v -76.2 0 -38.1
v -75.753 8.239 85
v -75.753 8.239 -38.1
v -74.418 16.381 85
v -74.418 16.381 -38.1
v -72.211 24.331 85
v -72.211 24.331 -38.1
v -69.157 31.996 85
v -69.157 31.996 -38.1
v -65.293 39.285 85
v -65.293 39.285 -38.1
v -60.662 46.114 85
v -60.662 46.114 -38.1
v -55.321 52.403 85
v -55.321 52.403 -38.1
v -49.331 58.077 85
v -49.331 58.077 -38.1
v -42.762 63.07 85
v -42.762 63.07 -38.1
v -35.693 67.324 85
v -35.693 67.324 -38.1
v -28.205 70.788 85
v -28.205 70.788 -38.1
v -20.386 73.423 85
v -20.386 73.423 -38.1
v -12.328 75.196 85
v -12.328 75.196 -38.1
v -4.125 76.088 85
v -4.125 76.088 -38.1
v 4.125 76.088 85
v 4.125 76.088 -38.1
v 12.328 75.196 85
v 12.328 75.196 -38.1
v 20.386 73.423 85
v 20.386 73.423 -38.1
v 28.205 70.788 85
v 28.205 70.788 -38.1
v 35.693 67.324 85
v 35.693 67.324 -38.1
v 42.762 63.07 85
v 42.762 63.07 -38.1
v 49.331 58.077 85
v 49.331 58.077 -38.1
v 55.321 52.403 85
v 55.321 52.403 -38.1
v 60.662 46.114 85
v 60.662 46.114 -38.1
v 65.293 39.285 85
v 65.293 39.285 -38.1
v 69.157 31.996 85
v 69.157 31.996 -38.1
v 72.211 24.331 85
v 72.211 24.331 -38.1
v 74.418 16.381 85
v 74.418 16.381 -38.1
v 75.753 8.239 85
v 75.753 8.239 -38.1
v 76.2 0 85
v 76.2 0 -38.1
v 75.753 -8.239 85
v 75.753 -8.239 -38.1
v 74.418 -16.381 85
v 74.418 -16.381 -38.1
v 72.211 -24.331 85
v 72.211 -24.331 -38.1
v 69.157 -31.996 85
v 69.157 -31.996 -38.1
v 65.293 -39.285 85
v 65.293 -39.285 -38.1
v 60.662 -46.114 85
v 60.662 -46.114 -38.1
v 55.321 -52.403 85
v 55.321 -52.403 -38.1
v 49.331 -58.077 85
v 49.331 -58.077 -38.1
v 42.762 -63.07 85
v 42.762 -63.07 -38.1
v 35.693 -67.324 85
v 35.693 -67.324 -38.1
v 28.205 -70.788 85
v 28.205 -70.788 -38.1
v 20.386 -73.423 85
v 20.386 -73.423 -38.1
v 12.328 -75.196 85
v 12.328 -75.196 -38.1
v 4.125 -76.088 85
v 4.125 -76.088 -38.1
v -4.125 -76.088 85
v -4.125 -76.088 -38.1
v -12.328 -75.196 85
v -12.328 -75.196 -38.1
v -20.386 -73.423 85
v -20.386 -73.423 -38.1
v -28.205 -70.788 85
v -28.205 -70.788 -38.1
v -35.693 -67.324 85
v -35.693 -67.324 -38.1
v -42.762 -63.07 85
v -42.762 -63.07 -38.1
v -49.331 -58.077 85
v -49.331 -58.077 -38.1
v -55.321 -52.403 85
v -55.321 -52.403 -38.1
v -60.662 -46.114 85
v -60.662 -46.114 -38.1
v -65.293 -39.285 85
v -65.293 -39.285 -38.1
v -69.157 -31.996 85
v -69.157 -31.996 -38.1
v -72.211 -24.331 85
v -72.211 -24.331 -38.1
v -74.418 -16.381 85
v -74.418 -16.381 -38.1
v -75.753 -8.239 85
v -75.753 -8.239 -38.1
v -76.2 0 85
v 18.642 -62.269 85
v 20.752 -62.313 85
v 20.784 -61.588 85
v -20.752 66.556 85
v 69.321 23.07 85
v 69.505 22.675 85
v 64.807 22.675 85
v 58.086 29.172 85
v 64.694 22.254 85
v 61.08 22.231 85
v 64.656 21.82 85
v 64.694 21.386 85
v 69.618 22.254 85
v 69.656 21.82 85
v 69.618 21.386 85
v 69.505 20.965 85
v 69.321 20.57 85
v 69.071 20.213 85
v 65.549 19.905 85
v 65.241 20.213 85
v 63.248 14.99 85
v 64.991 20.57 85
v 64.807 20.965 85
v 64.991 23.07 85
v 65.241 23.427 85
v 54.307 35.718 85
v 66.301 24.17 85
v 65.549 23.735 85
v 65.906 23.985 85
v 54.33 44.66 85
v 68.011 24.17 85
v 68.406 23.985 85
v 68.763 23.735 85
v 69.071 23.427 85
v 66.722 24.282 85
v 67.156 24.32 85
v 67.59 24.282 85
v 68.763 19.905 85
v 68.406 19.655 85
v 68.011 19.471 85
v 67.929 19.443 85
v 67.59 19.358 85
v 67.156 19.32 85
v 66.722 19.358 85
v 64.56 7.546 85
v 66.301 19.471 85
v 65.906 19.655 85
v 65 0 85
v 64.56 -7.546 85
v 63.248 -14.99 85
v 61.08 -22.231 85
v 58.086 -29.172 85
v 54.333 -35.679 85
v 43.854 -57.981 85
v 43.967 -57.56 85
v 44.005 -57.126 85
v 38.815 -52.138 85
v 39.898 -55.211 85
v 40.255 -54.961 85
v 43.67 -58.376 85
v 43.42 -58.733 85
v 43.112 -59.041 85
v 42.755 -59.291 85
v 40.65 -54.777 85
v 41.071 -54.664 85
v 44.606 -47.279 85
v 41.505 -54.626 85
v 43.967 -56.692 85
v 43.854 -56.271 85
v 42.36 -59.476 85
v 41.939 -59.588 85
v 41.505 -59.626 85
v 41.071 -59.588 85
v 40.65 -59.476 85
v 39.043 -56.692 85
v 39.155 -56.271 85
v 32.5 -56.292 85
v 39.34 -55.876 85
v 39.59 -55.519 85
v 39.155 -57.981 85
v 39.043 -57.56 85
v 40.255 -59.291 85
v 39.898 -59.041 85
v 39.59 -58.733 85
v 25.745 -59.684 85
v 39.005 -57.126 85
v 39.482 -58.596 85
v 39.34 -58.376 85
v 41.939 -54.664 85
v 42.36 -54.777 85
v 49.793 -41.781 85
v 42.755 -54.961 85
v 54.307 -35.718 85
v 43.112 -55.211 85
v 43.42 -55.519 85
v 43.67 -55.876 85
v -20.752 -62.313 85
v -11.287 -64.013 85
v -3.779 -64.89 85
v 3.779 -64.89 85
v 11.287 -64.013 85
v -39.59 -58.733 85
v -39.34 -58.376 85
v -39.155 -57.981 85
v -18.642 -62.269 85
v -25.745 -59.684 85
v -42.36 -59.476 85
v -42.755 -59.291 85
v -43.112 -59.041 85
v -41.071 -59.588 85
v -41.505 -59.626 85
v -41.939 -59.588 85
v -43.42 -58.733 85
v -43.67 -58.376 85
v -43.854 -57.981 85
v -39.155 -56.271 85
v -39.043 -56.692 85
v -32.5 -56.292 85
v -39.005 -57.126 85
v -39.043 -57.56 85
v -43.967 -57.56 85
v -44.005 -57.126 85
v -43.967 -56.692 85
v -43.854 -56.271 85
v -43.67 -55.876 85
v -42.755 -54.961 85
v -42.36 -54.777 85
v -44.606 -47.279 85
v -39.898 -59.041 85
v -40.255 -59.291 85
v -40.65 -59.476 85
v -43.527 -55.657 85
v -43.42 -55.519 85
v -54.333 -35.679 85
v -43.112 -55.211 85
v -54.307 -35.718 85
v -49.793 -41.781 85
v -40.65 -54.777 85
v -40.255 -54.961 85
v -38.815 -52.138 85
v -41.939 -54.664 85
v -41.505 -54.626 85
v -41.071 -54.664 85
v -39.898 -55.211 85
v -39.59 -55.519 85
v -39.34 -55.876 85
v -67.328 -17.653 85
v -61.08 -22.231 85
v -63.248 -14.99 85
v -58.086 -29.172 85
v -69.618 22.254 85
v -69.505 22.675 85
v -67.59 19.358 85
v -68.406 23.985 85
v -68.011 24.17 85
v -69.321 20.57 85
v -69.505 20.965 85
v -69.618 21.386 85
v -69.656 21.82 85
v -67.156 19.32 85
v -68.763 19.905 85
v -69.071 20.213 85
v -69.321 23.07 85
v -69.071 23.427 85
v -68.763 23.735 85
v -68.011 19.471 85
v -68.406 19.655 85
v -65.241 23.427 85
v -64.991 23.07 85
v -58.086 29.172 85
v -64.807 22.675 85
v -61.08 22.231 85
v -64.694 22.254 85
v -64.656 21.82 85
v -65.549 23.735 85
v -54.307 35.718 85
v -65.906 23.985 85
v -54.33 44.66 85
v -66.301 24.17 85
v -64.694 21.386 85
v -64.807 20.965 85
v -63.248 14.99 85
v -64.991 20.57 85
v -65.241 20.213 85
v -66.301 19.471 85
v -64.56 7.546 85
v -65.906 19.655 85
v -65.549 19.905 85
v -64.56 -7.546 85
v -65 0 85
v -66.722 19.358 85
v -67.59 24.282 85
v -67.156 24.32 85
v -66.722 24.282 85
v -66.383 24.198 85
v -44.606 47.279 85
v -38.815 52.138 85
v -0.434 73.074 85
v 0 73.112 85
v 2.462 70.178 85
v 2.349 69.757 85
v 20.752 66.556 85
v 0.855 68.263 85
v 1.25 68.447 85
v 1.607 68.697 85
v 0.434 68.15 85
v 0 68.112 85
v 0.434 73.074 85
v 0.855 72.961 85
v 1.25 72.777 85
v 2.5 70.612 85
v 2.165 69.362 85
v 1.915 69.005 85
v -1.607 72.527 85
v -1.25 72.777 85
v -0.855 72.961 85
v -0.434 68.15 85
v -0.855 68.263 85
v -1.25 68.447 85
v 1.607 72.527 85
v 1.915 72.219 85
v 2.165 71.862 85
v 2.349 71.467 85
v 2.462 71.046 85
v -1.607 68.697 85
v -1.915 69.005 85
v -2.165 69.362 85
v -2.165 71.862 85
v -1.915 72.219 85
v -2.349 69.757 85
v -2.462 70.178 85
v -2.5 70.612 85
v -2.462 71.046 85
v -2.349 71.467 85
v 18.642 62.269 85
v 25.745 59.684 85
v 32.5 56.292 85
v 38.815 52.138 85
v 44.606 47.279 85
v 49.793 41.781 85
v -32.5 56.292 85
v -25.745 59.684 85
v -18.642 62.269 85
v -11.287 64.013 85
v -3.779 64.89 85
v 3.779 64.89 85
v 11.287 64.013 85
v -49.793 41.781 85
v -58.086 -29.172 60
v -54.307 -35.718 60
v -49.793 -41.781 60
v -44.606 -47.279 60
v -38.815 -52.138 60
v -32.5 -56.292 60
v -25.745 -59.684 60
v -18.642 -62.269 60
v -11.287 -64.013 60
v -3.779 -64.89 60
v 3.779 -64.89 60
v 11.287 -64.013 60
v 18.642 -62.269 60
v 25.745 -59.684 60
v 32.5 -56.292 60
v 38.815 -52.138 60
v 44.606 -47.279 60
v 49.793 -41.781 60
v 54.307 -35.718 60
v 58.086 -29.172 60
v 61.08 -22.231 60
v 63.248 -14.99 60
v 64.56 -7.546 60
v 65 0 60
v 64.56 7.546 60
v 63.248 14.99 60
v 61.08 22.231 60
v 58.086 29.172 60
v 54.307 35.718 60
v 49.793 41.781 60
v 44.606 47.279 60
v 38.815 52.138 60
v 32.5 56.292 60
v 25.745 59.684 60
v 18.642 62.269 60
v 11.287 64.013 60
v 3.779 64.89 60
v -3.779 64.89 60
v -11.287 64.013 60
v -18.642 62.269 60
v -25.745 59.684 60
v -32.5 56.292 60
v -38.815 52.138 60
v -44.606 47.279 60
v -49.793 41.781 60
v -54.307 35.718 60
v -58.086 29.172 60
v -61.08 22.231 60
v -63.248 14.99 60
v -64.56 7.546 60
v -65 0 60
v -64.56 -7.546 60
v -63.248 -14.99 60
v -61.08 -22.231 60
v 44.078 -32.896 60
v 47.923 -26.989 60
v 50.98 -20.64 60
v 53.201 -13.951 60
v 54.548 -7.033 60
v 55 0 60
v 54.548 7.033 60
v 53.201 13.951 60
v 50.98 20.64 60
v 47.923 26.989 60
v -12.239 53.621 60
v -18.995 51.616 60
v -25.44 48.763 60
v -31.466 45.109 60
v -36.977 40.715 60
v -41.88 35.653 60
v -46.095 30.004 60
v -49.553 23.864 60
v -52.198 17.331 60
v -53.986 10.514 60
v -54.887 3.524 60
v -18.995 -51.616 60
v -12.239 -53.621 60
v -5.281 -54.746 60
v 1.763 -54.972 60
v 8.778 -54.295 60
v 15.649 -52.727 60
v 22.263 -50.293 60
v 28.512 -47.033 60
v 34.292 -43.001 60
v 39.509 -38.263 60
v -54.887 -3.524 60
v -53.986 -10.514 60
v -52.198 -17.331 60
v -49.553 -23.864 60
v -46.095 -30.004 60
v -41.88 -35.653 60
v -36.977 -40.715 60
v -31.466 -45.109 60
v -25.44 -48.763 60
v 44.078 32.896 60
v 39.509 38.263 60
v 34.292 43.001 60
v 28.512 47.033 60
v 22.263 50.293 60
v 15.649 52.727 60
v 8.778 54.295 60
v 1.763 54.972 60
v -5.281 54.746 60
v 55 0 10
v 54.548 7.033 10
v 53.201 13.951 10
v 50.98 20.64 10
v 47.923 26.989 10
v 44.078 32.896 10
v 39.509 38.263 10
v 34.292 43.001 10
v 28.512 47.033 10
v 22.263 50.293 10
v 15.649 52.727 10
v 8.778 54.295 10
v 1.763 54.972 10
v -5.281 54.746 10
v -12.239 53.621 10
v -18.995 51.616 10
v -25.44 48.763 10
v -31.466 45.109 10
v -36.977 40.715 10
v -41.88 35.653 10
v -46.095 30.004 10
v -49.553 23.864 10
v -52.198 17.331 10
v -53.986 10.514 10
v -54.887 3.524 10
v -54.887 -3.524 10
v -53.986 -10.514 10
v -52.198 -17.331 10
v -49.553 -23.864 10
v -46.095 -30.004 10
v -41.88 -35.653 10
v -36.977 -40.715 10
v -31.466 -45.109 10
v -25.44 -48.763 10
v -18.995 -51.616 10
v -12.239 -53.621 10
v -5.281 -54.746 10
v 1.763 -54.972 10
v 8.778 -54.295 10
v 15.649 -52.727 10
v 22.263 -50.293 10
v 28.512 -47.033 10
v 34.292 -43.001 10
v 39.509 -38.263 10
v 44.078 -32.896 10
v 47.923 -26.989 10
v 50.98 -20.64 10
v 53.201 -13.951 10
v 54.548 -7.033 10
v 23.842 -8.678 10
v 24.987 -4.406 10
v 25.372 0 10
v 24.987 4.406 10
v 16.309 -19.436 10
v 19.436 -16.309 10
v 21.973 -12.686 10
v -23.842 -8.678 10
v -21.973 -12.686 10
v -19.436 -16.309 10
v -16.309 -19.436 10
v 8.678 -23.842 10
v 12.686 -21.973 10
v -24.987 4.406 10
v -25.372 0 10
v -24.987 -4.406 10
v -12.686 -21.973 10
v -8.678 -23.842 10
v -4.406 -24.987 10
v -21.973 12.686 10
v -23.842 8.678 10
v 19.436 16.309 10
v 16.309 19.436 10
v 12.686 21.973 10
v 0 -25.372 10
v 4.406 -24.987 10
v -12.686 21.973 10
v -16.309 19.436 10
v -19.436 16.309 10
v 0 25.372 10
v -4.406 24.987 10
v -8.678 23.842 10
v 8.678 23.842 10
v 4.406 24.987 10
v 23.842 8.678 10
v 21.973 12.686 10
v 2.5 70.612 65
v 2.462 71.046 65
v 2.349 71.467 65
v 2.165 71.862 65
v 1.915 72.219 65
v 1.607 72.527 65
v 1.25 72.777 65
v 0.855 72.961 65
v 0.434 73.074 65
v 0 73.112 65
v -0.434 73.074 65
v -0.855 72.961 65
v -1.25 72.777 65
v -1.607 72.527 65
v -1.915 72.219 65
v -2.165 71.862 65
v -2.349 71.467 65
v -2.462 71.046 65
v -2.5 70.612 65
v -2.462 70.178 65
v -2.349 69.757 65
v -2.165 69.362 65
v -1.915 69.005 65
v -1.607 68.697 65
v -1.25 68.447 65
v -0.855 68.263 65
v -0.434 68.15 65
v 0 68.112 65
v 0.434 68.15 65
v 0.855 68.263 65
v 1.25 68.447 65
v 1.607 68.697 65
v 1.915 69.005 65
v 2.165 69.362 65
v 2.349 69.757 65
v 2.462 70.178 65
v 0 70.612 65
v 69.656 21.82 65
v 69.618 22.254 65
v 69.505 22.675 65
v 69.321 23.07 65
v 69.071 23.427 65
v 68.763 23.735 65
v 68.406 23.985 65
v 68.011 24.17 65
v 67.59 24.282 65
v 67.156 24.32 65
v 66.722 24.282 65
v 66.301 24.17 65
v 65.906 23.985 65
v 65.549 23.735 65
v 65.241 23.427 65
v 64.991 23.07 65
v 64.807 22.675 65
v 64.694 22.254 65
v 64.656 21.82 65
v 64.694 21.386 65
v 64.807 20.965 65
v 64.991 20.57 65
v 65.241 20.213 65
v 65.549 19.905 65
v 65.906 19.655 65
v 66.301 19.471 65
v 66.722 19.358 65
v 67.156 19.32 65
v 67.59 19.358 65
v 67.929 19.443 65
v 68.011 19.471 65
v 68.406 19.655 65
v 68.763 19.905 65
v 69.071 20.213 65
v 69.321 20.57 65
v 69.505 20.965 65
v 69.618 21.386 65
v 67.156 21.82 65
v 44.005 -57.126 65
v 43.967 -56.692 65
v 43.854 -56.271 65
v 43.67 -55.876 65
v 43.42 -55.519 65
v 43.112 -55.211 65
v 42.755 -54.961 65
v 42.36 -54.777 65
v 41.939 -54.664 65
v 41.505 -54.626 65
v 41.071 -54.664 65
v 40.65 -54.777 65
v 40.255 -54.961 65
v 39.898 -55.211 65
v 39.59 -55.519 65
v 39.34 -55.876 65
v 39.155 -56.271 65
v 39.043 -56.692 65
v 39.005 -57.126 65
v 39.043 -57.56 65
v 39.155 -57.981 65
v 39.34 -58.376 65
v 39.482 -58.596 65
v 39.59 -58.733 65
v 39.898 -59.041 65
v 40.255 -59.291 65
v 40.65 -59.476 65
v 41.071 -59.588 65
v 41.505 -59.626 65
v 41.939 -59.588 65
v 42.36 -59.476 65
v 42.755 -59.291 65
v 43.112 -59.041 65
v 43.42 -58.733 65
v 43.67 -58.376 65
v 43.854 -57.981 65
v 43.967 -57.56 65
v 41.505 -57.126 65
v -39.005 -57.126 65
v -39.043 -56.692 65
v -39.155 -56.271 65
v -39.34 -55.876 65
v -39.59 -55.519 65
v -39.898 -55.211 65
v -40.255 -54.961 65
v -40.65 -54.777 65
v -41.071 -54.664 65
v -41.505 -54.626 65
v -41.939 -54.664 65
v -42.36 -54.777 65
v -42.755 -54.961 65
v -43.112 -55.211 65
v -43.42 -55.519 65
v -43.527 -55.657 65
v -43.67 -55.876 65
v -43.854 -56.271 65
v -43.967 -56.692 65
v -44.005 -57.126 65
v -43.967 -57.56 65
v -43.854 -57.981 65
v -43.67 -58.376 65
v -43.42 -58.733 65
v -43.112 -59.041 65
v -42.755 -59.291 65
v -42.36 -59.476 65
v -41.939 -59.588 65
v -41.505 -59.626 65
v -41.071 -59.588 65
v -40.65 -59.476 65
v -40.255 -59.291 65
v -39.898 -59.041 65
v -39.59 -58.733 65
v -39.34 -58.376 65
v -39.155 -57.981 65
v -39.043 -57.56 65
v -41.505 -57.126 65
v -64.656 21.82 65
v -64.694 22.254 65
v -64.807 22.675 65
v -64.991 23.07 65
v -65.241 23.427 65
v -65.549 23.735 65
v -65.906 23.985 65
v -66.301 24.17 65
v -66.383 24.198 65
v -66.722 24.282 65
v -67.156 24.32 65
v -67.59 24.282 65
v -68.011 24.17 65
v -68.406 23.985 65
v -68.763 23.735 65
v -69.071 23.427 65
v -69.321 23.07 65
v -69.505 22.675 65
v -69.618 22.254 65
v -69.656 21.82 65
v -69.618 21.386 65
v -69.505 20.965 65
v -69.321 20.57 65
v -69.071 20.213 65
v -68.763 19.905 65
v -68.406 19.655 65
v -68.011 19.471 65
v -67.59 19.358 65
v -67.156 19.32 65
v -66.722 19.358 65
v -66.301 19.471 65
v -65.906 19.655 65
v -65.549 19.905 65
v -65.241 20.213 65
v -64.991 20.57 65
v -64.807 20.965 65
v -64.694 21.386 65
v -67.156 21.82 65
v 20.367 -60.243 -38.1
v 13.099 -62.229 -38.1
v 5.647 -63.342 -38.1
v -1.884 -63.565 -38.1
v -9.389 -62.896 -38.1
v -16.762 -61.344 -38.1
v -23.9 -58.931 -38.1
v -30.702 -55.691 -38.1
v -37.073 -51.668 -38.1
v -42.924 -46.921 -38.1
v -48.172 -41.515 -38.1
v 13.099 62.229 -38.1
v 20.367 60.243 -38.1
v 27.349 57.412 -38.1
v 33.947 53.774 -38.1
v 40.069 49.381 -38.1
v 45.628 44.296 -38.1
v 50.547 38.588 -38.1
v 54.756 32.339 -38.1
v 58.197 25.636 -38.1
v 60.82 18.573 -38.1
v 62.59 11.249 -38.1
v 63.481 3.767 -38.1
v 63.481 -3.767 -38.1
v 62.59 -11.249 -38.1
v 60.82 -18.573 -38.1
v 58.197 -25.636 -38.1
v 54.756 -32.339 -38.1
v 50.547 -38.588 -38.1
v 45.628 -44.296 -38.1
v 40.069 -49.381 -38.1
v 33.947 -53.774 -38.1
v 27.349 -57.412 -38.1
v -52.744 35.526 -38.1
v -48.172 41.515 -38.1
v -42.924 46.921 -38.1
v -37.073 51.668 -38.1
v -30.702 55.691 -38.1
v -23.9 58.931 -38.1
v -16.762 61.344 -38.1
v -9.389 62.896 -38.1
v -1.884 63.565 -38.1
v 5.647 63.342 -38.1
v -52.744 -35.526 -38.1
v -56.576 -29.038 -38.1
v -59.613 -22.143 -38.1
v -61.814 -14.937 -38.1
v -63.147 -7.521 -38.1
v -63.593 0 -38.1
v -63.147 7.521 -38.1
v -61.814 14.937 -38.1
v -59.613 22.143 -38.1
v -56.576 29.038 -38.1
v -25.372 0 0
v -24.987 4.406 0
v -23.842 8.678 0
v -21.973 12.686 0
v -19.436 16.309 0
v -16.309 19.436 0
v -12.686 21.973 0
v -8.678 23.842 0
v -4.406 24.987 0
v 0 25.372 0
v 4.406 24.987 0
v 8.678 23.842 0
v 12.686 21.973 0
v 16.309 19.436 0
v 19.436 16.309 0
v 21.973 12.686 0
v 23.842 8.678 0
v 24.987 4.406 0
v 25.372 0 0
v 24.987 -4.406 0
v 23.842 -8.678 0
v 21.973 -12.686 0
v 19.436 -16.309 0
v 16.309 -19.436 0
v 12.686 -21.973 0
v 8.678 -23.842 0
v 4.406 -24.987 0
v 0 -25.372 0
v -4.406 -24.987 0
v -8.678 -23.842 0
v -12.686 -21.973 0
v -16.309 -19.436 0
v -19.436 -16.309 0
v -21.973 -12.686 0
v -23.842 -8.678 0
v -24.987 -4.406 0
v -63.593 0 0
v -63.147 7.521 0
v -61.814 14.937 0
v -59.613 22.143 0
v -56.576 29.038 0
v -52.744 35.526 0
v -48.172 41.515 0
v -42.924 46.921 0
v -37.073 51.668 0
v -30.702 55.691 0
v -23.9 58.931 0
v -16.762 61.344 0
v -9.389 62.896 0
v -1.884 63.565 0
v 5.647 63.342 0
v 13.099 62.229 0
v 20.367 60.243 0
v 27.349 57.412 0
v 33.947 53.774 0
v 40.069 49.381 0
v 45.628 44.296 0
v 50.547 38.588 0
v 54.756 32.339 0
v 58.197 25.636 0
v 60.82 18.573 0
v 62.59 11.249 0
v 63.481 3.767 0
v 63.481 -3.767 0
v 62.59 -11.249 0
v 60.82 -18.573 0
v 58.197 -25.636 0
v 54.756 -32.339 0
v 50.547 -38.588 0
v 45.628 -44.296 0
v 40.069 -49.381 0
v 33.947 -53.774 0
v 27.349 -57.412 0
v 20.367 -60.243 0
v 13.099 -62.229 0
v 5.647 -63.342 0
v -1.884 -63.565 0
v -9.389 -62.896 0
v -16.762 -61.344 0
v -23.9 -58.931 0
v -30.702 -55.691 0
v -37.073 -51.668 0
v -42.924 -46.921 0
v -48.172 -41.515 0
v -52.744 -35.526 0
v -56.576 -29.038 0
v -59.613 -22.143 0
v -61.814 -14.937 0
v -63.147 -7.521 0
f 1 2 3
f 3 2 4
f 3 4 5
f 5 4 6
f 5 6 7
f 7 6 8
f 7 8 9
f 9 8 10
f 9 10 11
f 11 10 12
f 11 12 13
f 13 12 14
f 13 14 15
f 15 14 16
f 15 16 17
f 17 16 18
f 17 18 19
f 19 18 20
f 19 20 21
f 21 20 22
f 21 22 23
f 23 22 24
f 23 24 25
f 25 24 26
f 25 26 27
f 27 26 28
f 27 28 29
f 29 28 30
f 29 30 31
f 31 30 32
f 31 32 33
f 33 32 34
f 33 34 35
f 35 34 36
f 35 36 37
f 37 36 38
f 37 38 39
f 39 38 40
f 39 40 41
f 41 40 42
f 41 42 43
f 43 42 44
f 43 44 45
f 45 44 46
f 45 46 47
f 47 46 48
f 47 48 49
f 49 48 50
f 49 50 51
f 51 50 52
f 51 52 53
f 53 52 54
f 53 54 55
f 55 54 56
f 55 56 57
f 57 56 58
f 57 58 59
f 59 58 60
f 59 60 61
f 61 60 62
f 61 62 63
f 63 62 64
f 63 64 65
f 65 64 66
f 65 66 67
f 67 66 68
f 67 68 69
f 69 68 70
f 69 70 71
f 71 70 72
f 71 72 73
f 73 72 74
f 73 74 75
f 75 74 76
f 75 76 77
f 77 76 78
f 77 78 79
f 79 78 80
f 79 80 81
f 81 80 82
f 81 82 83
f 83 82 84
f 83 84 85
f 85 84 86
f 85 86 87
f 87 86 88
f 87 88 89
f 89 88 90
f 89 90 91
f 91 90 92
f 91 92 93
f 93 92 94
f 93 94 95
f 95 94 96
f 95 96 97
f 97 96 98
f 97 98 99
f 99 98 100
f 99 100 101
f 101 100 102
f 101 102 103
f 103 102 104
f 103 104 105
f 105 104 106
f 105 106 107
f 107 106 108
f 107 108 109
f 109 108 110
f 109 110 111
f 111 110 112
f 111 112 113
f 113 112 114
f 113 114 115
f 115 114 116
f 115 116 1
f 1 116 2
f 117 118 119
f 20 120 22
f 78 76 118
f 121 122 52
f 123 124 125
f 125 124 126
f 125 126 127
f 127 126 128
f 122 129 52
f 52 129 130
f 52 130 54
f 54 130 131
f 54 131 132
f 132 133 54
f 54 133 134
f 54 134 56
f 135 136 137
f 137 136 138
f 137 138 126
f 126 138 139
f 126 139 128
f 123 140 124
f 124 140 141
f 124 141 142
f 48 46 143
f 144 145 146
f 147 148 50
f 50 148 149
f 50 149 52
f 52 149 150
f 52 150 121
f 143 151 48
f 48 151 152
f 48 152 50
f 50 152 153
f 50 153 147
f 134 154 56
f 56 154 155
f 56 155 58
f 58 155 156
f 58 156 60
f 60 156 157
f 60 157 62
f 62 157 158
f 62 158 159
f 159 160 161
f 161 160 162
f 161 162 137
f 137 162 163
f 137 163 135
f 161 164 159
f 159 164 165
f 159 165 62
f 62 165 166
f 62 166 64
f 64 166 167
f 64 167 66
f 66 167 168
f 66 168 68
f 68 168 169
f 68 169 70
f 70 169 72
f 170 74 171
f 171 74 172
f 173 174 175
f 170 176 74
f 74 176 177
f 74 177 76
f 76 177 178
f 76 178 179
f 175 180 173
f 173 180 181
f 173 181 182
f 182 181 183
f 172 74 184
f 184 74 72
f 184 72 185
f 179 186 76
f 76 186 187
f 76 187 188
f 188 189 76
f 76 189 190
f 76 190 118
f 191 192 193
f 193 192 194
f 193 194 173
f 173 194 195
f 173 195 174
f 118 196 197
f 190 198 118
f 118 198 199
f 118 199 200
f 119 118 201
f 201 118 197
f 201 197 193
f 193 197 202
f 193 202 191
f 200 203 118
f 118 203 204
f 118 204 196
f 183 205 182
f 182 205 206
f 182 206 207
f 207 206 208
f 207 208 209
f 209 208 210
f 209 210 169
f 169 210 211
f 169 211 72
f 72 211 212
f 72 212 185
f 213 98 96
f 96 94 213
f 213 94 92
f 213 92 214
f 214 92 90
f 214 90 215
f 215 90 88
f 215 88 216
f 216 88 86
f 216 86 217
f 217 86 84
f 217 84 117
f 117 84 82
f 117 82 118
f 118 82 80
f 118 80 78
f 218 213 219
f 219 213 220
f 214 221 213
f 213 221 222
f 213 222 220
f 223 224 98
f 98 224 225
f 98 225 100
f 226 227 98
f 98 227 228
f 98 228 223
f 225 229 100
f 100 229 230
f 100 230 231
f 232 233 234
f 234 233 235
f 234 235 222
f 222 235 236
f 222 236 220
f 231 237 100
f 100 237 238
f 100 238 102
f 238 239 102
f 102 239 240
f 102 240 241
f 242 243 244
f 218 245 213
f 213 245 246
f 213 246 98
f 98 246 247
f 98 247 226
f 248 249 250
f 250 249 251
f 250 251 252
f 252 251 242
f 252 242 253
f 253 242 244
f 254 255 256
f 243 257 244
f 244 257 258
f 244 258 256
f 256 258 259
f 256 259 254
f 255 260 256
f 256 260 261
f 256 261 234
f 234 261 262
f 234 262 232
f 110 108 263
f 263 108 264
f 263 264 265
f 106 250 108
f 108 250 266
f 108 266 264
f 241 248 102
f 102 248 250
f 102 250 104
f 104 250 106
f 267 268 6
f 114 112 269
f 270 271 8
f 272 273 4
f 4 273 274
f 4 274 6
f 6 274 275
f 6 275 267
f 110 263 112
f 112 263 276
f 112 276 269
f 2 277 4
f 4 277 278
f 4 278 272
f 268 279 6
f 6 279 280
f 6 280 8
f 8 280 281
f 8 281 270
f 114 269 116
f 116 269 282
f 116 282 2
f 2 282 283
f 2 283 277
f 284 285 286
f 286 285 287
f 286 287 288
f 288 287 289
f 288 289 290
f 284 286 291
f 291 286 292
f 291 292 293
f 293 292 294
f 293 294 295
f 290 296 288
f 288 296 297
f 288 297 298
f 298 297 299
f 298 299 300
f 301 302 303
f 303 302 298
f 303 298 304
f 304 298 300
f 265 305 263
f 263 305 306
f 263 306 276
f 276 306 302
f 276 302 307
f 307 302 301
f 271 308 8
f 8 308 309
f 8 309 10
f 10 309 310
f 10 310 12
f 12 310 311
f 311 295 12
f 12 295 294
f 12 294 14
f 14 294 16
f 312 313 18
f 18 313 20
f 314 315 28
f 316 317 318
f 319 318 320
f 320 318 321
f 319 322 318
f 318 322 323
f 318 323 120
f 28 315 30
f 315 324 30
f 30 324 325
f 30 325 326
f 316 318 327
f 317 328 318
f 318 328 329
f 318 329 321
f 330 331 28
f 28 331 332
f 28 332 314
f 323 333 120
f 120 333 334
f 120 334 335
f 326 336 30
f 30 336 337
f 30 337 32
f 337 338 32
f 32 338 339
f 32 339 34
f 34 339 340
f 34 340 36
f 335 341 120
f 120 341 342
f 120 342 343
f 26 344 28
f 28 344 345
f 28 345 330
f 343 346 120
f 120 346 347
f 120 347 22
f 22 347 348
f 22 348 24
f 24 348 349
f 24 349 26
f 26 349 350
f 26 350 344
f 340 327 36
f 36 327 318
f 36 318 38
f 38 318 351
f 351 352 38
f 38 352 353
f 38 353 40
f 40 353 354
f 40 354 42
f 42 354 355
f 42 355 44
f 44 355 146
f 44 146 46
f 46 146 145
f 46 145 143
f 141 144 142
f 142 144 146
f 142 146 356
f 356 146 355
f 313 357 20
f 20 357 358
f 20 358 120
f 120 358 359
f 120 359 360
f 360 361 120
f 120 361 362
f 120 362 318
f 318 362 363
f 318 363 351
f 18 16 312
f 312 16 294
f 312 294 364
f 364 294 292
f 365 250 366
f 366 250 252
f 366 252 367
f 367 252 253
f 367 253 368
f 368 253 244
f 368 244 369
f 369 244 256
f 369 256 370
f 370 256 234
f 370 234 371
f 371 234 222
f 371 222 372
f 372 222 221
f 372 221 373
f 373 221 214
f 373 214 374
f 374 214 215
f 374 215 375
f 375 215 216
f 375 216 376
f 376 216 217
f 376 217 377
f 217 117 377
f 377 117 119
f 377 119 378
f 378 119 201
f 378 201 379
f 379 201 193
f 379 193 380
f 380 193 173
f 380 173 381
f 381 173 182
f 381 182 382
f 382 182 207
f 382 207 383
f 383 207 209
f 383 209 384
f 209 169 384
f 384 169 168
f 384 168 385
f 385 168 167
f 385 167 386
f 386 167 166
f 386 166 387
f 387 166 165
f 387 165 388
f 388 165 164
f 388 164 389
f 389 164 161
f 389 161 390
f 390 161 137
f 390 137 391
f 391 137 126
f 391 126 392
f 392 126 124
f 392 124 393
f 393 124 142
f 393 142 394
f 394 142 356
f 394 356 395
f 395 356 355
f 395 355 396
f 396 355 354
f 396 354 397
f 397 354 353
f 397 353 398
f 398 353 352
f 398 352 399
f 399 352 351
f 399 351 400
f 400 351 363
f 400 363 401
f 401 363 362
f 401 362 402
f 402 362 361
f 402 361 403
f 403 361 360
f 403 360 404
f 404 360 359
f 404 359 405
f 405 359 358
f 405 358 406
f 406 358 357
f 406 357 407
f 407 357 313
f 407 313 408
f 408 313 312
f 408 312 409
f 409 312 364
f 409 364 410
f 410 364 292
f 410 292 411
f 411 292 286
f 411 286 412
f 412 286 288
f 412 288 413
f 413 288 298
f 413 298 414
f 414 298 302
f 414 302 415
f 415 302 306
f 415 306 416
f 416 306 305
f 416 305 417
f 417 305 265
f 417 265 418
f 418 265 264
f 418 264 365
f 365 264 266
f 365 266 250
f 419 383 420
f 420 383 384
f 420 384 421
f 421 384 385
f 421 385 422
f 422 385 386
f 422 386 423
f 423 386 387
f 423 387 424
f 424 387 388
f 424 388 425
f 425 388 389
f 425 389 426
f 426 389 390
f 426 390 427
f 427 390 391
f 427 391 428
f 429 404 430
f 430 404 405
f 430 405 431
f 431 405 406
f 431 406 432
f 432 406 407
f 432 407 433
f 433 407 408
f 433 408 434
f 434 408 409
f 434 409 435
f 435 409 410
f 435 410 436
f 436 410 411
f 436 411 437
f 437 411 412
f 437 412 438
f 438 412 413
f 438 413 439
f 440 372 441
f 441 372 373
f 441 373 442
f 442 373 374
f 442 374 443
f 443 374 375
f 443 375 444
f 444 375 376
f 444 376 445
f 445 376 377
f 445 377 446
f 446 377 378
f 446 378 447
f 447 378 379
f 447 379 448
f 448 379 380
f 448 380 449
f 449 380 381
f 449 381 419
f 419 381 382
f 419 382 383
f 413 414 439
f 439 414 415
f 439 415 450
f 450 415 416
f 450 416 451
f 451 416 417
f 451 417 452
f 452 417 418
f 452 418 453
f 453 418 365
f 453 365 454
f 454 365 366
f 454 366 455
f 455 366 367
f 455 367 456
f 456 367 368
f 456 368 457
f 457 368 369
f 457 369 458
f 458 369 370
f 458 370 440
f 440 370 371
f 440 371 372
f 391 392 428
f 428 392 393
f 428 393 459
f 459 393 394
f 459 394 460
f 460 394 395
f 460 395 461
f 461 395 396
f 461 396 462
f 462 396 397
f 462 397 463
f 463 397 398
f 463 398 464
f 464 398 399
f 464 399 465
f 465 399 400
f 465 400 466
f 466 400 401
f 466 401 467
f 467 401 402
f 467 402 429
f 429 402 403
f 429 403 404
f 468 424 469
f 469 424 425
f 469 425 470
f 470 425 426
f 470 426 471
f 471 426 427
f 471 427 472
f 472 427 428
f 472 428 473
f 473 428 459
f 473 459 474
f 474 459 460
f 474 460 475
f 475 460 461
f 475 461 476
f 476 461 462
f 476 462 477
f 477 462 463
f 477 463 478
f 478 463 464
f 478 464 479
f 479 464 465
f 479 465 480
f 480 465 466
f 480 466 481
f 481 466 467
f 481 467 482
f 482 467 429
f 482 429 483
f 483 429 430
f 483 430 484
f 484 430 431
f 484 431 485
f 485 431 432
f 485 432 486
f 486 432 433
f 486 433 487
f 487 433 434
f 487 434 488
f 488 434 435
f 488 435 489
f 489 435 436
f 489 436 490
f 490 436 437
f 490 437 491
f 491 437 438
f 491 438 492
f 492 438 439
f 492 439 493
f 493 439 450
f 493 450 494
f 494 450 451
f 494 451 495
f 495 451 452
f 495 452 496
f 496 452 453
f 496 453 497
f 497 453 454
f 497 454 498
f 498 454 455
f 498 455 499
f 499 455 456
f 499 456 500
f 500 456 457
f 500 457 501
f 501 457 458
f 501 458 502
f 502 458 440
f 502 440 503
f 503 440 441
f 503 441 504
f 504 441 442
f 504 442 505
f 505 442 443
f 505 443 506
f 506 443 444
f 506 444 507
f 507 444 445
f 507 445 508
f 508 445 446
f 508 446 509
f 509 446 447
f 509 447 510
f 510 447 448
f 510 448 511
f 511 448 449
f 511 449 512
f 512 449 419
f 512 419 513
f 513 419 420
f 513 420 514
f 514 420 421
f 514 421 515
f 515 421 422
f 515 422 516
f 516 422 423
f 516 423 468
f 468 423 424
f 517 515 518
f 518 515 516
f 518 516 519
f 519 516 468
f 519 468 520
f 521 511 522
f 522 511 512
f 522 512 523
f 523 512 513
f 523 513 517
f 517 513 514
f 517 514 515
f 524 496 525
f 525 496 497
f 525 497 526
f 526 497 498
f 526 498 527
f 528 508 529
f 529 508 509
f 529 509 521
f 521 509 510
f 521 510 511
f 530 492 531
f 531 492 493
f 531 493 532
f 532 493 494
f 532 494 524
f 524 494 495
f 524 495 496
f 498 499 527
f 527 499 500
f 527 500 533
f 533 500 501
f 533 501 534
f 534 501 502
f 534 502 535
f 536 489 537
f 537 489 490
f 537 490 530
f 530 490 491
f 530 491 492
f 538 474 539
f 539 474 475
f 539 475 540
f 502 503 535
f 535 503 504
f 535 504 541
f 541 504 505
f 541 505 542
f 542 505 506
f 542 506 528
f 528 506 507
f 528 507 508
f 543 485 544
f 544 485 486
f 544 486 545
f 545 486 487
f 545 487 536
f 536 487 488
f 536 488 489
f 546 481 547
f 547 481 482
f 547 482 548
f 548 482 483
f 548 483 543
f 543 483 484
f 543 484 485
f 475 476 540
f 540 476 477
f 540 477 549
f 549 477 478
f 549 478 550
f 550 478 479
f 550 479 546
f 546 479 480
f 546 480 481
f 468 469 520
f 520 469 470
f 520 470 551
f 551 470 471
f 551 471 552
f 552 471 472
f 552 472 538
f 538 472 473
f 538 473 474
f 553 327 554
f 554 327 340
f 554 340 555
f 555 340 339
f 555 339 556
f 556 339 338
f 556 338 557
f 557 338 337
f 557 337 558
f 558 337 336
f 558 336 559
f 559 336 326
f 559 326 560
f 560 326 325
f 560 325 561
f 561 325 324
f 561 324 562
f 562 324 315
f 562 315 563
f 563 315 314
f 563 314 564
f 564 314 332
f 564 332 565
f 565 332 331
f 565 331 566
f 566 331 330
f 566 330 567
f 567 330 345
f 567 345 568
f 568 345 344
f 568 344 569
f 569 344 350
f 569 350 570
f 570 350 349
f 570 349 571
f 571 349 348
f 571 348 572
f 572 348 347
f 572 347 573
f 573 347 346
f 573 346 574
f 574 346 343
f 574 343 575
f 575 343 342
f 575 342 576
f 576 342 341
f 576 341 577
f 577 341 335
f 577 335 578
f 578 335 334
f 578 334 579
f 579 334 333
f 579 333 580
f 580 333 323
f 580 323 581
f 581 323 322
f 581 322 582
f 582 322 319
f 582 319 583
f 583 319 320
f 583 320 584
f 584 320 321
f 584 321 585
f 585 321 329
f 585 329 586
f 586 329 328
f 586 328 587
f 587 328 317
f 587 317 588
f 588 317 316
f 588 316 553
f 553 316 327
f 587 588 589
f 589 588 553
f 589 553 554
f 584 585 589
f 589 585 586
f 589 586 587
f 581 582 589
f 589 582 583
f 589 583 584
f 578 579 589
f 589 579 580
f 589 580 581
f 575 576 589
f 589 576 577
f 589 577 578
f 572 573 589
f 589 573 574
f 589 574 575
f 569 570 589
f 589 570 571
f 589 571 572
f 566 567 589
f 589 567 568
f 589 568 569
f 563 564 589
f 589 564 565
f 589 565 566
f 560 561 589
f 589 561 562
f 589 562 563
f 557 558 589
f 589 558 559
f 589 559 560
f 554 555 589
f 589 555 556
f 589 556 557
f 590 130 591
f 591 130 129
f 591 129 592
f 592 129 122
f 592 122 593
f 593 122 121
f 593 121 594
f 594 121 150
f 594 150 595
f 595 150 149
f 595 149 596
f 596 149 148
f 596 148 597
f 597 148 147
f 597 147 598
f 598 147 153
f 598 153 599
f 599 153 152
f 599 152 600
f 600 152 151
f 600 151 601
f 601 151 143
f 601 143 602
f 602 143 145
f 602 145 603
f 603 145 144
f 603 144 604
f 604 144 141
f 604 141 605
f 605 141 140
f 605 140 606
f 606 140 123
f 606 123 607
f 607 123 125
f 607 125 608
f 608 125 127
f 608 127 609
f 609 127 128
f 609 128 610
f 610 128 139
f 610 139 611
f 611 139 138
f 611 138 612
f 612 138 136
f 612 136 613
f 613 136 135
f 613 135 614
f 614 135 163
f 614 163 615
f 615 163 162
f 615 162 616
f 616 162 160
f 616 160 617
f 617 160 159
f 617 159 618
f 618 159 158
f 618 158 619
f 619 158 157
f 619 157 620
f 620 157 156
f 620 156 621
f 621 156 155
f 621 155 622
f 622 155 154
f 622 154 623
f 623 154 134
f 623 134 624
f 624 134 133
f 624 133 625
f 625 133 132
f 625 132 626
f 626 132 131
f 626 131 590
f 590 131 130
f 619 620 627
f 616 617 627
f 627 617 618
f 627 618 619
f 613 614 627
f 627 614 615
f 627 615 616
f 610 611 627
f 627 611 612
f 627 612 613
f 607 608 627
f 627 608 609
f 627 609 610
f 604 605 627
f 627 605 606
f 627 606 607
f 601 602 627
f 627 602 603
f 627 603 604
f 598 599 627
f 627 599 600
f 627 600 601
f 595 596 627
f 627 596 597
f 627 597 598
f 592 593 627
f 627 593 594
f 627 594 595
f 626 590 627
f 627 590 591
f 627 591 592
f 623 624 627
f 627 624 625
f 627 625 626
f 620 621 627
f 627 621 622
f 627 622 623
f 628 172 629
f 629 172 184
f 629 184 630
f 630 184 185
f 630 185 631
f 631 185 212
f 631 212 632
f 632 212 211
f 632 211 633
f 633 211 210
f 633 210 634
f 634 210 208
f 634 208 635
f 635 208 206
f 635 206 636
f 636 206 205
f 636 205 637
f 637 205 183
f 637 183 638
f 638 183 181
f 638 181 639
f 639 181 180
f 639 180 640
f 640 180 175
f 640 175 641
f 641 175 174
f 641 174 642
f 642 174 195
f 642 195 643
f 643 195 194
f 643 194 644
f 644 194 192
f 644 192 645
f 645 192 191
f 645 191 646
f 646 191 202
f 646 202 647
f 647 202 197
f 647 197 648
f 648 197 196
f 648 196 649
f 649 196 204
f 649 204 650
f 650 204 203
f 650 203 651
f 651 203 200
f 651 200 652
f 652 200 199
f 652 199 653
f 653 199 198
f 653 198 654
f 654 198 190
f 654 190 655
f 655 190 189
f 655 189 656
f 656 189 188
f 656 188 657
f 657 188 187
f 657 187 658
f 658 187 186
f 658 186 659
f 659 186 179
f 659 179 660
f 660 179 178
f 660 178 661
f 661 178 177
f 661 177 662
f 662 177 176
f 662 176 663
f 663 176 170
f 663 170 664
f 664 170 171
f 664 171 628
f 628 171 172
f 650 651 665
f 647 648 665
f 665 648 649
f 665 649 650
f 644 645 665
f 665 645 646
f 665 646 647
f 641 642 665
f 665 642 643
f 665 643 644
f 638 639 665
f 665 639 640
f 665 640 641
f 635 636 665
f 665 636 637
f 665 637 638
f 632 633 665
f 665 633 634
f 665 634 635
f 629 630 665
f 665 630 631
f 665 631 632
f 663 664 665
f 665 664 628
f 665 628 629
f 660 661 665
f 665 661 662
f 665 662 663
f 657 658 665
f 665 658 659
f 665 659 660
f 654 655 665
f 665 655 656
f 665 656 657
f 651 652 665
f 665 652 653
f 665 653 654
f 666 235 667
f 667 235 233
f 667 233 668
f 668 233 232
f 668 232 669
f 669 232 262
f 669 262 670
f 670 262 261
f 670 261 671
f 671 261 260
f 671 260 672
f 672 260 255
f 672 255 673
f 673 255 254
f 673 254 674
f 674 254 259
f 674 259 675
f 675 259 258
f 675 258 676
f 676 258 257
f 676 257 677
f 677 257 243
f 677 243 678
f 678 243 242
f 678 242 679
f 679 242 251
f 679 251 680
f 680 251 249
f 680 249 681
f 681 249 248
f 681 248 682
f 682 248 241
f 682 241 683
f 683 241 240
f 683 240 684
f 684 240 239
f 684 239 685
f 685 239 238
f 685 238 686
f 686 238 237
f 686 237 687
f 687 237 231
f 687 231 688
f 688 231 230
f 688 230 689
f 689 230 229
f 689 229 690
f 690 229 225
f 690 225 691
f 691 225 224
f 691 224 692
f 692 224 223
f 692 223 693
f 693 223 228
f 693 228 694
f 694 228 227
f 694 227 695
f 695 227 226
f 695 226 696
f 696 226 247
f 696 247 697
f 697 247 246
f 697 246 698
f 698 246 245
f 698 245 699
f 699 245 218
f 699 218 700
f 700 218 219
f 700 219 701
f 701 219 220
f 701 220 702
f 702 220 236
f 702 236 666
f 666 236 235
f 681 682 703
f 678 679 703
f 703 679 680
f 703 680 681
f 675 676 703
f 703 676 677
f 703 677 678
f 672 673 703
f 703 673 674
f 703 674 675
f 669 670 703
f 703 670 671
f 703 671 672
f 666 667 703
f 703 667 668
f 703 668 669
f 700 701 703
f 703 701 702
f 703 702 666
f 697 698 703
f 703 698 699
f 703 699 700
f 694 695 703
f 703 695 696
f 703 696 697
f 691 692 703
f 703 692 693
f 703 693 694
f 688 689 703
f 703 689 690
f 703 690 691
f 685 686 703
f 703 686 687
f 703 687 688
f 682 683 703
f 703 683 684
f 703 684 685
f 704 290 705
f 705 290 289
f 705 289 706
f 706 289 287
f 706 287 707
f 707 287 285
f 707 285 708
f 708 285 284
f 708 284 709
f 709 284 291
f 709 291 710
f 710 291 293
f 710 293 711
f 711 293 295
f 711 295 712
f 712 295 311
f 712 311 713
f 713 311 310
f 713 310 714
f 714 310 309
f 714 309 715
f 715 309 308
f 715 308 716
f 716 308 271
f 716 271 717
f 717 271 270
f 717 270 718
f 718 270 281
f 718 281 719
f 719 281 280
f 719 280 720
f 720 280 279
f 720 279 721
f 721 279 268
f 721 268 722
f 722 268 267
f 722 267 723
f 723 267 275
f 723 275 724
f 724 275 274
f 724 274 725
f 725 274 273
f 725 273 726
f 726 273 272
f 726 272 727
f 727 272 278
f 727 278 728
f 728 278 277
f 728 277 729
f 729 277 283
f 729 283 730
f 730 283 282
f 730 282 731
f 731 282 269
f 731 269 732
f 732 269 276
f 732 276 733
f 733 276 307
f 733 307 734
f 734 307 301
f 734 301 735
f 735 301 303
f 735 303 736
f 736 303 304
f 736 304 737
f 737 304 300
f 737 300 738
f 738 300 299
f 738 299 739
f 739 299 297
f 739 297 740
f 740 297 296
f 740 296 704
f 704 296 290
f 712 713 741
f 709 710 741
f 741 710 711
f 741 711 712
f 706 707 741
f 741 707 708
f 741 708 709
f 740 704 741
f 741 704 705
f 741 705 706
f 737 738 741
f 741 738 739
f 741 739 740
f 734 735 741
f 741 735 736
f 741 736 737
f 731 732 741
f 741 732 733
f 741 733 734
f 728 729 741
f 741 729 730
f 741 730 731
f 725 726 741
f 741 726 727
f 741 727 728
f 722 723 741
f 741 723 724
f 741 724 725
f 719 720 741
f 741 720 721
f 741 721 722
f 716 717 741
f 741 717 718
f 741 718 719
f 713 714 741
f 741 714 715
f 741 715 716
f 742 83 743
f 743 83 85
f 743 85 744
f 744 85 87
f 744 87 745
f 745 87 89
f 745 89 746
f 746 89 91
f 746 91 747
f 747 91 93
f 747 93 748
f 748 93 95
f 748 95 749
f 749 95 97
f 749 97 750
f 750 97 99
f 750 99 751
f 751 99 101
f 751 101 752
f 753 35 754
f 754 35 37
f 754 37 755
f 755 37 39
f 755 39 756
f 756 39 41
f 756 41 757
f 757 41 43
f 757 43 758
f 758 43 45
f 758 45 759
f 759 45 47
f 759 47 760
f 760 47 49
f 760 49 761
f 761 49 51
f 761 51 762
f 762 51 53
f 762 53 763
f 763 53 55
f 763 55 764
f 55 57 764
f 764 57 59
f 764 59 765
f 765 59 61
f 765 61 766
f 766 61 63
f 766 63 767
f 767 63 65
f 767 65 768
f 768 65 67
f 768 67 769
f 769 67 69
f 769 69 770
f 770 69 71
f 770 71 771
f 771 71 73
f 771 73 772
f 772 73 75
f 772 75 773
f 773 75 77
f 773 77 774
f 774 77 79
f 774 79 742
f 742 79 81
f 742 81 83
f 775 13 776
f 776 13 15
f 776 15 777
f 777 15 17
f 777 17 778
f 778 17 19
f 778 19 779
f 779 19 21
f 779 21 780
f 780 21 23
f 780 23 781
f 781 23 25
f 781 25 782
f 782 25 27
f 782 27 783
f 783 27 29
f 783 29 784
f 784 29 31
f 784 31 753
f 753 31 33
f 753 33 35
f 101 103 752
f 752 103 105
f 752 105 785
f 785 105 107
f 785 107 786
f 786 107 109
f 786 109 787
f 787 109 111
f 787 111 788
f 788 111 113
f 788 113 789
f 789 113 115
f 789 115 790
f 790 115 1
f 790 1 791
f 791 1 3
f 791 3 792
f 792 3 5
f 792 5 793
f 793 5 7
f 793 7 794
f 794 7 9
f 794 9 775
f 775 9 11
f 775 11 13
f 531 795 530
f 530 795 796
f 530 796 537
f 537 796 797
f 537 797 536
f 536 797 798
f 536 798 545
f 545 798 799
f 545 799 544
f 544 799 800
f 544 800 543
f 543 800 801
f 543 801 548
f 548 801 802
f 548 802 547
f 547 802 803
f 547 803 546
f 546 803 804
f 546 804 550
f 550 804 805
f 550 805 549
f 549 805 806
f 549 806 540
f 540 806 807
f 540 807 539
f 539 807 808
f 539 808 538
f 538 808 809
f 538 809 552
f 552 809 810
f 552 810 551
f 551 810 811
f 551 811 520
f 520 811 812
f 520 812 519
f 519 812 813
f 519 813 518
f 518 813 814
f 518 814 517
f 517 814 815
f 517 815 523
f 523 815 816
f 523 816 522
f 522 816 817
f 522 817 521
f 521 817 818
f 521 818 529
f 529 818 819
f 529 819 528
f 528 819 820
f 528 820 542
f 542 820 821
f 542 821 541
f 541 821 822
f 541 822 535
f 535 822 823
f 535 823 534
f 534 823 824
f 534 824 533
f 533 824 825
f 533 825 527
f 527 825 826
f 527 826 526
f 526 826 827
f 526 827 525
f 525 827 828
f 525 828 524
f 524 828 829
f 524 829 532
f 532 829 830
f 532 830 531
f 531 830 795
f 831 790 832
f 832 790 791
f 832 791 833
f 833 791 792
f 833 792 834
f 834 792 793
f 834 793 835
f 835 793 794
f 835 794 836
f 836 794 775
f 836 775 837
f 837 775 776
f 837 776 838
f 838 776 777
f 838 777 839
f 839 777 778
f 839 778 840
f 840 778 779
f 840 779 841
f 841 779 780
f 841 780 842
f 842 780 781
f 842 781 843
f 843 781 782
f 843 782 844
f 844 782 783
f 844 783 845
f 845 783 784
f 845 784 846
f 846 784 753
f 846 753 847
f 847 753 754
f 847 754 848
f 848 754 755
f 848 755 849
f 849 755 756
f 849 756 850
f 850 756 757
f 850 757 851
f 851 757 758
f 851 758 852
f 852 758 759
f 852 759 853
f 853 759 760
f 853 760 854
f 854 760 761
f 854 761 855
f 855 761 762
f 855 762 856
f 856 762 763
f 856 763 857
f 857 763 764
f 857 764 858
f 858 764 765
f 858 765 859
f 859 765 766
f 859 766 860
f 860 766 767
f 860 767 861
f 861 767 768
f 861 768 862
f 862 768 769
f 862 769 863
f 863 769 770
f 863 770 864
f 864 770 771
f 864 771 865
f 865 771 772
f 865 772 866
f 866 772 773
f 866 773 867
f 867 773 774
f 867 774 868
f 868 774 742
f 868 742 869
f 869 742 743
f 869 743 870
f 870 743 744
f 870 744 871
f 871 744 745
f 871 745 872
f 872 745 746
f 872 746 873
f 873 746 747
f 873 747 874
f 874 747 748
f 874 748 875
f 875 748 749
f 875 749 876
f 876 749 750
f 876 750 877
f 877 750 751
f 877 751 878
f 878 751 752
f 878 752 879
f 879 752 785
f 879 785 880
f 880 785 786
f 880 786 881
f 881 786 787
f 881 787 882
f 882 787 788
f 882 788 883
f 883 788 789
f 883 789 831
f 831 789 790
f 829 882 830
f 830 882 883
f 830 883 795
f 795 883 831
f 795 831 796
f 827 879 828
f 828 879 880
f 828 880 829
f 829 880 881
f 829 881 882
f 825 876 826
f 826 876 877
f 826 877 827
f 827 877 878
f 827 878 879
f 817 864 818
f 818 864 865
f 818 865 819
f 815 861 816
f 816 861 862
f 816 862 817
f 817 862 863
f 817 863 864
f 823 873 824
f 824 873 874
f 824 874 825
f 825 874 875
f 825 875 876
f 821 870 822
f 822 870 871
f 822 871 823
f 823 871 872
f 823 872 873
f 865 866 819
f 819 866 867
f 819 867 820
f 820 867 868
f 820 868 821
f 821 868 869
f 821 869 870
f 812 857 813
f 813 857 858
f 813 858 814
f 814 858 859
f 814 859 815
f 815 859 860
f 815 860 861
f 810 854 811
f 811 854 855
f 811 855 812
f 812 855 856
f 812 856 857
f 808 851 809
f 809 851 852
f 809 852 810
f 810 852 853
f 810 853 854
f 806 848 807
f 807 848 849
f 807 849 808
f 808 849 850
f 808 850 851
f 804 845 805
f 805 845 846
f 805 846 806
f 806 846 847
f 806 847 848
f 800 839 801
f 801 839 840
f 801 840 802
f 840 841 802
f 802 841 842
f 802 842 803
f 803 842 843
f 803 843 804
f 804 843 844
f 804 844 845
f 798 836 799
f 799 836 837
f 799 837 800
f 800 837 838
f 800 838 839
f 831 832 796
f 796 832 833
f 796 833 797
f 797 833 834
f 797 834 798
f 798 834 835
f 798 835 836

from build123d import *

# Parameters (mm, degrees)
SKETCH2_R           = 76.2
BOSS_EXTRUDE1_DEPTH = 85
SKETCH4_R           = 65
CUT_EXTRUDE2_DEPTH  = 25
SKETCH5_R           = 55
CUT_EXTRUDE3_DEPTH  = 50
SKETCH7_R           = 2.5
CUT_EXTRUDE4_DEPTH  = 20
CIRPATTERN1_COUNT   = 5
BOSS_EXTRUDE2_START = 38.1
SKETCH8_R           = 76.2
SKETCH8_R_2         = 50.8
BOSS_EXTRUDE2_DEPTH = 38.1


with BuildPart() as part:
    # Sketch2 → Boss-Extrude1 (new body)
    with BuildSketch(Plane(origin=(0, 0, 0), x_dir=(0, 1, 0), z_dir=(0, 0, 1))):
        with Locations(Location((0, 0, 0), (0, 0, 270))):
            Circle(SKETCH2_R)
    extrude(amount=BOSS_EXTRUDE1_DEPTH)

    # Sketch4 → Cut-Extrude2 (cut)
    with BuildSketch(Plane.XY.offset(85)):
        Circle(SKETCH4_R)
    extrude(amount=-CUT_EXTRUDE2_DEPTH, mode=Mode.SUBTRACT)

    # Sketch5 → Cut-Extrude3 (cut)
    with BuildSketch(Plane.XY.offset(60)):
        Circle(SKETCH5_R)
    extrude(amount=-CUT_EXTRUDE3_DEPTH, mode=Mode.SUBTRACT)

    # Sketch7 → Cut-Extrude4 (cut)
    with BuildSketch(Plane.XY.offset(85)):
        with Locations((0, 70.612)):
            Circle(SKETCH7_R)
    cut_extrude4 = extrude(amount=-CUT_EXTRUDE4_DEPTH, mode=Mode.SUBTRACT)

    # CirPattern1: Cut-Extrude4 ×5 about axis
    cirpattern1_axis = Axis((0, 0, 0), (0, 0, 1))
    for i in range(1, CIRPATTERN1_COUNT):
        add(cut_extrude4.rotate(cirpattern1_axis, i * 360 / CIRPATTERN1_COUNT), mode=Mode.SUBTRACT)

    # Sketch8 → Boss-Extrude2 (add)
    with BuildSketch(Plane(origin=(0, 0, 0), x_dir=(1, 0, 0), z_dir=(0, 0, -1)).offset(BOSS_EXTRUDE2_START)):
        with Locations(Location((0, 0, 0), (0, 0, 180))):
            Circle(SKETCH8_R)
        Circle(SKETCH8_R_2, mode=Mode.SUBTRACT)
    extrude(amount=-BOSS_EXTRUDE2_DEPTH)

    # Sketch10 → Cut-Revolve1 (revolve, cut)
    with BuildSketch(Plane.YZ, mode=Mode.PRIVATE) as cut_revolve1_sk:
        Polygon((0, 10.519966747), (-25.372140722, 10), (-25.372140722, 0), (-63.592993734, 0), (-63.592993734, -38.1), (0, -38.1), align=None)
    revolve(cut_revolve1_sk.sketch.rotate(Axis((0, 0, -38.1), (0, 0, 1)), 270), axis=Axis((0, 0, -38.1), (0, 0, 1)), mode=Mode.SUBTRACT)


solid = part.part
